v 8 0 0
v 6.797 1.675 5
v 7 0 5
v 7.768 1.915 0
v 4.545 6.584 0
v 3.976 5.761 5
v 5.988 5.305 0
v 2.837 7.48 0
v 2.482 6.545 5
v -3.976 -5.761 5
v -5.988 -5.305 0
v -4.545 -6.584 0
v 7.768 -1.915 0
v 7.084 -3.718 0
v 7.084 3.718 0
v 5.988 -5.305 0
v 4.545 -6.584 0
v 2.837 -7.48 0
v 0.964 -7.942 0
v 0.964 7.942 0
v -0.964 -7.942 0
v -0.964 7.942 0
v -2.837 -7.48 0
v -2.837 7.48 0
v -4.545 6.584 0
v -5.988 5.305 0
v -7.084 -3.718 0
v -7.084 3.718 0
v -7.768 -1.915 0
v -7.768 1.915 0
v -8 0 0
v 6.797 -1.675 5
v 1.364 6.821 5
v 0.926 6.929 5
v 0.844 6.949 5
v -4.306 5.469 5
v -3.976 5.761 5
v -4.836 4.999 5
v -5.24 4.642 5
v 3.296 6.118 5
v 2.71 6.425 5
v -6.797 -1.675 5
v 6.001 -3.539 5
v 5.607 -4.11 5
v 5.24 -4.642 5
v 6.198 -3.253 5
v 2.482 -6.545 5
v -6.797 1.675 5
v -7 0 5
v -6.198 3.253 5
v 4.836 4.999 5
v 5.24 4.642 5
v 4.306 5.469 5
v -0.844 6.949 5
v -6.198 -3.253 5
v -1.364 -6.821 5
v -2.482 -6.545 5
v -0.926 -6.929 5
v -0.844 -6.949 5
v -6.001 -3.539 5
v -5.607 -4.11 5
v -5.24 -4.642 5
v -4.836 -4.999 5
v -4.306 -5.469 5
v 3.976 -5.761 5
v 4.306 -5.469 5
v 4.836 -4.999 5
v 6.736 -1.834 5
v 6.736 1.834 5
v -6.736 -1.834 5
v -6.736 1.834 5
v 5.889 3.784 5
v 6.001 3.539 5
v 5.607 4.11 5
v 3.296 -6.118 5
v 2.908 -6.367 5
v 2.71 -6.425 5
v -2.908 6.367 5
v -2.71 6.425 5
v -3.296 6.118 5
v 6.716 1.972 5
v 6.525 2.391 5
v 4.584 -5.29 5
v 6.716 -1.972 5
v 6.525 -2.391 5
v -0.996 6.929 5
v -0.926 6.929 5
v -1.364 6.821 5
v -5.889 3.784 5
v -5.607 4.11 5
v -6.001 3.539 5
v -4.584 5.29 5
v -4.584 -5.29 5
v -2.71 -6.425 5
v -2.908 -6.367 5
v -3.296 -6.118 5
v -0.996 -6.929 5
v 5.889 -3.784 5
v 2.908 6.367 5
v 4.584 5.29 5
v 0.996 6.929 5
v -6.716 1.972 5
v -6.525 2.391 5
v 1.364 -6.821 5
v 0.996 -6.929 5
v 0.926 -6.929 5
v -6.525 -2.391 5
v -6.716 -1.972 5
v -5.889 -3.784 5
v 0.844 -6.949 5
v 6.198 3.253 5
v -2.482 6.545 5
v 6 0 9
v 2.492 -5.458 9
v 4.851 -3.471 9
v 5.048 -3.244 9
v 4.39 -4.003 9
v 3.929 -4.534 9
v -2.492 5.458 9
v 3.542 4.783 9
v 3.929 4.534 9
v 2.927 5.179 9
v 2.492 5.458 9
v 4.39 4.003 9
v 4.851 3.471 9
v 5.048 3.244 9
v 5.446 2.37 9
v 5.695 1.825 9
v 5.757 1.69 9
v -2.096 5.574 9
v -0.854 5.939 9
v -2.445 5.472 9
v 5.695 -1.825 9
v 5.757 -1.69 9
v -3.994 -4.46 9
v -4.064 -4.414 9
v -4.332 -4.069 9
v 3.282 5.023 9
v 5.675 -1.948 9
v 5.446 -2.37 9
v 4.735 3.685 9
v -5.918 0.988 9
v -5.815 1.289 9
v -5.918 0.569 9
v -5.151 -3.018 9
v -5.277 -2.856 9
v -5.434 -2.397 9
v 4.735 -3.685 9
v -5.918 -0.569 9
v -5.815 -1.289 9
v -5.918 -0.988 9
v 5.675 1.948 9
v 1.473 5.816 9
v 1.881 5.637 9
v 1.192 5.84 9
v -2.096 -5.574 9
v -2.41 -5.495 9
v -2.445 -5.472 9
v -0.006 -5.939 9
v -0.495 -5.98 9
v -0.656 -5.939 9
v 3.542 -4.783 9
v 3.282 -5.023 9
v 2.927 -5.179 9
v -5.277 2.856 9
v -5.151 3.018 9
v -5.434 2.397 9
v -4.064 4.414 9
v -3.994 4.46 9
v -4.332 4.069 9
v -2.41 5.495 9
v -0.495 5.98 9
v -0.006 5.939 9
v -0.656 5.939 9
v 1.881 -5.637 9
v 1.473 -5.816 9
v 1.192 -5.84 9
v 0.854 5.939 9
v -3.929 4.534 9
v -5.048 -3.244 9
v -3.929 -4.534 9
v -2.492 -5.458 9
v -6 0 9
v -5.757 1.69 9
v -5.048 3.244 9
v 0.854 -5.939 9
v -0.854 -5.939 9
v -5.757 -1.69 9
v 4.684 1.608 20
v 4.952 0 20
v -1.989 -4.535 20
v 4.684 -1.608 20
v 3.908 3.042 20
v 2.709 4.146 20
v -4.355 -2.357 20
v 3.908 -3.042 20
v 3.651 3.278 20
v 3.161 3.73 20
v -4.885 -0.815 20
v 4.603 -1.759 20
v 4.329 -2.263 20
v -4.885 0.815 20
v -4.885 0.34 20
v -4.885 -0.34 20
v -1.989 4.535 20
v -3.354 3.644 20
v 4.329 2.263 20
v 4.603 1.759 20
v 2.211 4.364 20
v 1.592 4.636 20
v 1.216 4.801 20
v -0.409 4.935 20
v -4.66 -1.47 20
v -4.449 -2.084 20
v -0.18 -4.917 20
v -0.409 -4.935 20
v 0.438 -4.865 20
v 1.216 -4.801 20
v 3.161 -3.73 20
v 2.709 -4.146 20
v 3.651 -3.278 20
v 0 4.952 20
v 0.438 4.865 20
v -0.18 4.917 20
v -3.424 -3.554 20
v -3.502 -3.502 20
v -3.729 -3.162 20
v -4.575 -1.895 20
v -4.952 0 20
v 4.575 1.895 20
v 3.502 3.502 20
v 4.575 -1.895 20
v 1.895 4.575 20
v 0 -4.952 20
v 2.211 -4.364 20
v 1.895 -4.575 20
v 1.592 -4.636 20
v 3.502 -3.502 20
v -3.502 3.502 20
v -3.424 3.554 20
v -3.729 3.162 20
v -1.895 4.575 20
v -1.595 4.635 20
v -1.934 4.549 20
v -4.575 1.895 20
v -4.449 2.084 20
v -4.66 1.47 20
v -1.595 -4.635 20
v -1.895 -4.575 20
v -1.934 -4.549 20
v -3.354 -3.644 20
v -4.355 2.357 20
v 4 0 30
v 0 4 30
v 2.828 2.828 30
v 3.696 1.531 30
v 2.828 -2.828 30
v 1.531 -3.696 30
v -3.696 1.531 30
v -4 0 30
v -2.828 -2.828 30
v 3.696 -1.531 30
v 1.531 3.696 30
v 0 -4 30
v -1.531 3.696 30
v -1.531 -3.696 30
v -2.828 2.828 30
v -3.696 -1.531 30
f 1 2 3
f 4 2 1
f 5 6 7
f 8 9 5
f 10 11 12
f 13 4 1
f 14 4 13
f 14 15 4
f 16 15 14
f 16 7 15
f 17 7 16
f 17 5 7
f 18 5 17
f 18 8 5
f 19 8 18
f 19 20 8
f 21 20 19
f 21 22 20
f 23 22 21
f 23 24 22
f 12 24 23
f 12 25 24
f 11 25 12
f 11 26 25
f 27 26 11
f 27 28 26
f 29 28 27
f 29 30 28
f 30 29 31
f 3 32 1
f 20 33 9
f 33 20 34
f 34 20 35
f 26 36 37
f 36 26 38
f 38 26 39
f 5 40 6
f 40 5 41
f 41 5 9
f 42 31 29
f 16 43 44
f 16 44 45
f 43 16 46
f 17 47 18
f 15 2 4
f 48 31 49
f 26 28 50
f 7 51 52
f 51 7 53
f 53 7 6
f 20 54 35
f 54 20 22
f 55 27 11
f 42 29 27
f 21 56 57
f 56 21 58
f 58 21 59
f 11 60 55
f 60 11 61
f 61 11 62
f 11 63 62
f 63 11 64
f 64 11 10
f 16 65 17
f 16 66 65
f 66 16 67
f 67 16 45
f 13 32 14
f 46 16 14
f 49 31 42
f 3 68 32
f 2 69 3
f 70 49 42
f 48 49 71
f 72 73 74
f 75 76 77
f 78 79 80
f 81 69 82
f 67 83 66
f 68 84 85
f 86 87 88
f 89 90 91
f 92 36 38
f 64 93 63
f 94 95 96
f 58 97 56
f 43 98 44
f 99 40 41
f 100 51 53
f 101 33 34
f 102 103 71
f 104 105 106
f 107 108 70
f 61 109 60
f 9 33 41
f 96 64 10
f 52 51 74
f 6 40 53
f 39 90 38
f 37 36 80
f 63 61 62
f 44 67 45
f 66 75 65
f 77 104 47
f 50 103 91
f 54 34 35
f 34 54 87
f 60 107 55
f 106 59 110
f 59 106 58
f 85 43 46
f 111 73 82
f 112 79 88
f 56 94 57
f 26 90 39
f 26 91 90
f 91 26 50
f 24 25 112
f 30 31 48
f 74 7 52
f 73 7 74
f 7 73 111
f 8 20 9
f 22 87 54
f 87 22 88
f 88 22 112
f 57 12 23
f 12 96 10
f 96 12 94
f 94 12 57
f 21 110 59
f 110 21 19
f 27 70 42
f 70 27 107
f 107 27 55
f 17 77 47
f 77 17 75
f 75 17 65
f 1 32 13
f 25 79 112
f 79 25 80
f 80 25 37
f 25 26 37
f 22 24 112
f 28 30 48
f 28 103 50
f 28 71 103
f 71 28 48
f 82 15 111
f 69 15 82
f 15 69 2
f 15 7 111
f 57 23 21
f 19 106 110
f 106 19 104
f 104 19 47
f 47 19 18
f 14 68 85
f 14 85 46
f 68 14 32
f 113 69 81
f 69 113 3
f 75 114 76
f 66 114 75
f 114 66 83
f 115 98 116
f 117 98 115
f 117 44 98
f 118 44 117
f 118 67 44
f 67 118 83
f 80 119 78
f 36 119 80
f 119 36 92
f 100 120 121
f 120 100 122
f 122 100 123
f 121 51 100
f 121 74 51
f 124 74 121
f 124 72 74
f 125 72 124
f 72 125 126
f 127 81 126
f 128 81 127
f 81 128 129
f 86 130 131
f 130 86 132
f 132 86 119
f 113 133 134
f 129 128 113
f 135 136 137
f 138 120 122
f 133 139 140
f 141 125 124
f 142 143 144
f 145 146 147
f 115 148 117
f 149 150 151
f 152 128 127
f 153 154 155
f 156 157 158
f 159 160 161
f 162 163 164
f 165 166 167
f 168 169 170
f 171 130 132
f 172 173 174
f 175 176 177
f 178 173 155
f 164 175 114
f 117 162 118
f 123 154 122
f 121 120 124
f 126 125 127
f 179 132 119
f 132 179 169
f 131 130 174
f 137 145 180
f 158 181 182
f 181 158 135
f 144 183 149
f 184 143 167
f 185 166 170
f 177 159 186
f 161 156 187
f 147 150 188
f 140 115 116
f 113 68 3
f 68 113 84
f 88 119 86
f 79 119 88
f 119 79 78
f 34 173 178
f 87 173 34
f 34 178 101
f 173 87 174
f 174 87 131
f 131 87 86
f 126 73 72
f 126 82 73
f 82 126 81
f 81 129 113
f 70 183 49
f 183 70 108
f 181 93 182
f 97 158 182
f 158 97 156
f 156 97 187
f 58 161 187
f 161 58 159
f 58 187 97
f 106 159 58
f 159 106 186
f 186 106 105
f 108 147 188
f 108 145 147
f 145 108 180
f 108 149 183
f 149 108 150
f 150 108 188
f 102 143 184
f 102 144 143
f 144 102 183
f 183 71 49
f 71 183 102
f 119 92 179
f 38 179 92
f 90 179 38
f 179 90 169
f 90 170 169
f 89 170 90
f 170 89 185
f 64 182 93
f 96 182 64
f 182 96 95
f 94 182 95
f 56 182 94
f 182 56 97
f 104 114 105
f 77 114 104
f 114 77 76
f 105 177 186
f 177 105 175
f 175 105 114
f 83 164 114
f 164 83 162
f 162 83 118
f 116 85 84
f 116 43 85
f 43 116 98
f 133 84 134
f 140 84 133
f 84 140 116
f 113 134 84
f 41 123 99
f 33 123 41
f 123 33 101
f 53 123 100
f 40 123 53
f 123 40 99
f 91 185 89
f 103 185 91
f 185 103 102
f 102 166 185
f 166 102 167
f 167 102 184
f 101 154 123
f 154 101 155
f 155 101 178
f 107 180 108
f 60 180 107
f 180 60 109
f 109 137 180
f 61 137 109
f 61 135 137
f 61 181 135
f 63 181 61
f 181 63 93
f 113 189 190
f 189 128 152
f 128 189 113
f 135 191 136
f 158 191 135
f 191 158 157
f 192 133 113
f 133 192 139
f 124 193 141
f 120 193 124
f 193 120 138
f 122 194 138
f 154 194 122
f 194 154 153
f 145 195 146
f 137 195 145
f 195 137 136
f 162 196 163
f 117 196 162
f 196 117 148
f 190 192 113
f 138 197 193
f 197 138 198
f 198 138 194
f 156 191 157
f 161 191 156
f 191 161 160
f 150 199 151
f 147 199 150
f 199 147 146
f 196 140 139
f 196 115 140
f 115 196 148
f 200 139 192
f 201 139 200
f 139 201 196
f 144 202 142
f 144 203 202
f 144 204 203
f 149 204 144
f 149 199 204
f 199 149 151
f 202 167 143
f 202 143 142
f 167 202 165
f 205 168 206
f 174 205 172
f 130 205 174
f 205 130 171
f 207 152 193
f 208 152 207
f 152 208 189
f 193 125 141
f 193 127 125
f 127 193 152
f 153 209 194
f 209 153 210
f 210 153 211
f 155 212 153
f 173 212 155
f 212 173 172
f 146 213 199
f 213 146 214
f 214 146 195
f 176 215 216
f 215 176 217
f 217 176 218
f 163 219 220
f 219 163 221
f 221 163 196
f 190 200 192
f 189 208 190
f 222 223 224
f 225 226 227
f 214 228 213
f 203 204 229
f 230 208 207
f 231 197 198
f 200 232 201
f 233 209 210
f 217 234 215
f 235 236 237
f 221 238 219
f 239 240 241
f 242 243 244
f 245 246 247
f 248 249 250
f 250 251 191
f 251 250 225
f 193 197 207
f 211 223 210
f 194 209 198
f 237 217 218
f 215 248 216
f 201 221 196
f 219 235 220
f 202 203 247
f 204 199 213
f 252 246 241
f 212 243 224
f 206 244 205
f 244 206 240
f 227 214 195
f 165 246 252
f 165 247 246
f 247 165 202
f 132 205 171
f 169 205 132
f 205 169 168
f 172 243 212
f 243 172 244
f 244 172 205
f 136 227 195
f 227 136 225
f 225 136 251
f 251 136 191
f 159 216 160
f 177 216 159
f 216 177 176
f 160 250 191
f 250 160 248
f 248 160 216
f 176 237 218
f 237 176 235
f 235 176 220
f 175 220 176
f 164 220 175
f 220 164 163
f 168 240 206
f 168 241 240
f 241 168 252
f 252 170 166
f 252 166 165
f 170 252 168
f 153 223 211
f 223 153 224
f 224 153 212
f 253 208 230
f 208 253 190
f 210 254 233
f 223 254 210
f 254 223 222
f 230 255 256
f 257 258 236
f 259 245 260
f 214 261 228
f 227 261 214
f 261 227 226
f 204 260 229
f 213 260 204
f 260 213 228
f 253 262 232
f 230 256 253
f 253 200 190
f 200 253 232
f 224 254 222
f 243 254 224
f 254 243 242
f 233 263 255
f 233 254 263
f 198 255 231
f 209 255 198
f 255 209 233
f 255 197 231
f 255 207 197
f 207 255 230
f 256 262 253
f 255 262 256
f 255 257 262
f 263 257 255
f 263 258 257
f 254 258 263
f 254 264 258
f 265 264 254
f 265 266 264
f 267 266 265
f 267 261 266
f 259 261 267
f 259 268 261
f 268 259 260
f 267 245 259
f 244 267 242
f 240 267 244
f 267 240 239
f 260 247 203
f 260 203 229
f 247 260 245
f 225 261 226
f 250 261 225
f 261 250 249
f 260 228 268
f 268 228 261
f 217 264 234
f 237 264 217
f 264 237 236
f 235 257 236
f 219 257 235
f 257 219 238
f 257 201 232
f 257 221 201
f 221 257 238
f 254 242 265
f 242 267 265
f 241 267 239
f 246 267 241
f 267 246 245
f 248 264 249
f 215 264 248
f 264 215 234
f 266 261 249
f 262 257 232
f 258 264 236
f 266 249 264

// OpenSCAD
module lamp(r_top, r_lamp, r_middle, r_base, h_top, h_lamp, h_base_top, h_base_bottom) {
    
    // Poprawiona formuła r_upper_lamp
    r_upper_lamp = r_top+(((r_lamp - r_top)*h_top) / (h_lamp + h_top));
    
    // Podstawa
    cylinder(h_base_bottom, r1=r_base, r2=r_middle);

    // Górna część podstawy
    translate([0,0,h_base_bottom])
    cylinder(h_base_top, r1=r_middle, r2=r_lamp);

    // Główna część lampy
    translate([0,0,h_base_bottom + h_base_top])
    cylinder(h_lamp, r1=r_lamp, r2=r_upper_lamp);

    // Górna część lampy
    translate([0,0,h_base_bottom + h_base_top + h_lamp])
    cylinder(h_top, r1=r_upper_lamp, r2=r_top);
}

lamp(
    r_top = 4,
    r_lamp = 6,
    r_middle = 7,
    r_base = 8,
    h_top = 10,
    h_lamp = 11,
    h_base_top = 4,
    h_base_bottom = 5
);
